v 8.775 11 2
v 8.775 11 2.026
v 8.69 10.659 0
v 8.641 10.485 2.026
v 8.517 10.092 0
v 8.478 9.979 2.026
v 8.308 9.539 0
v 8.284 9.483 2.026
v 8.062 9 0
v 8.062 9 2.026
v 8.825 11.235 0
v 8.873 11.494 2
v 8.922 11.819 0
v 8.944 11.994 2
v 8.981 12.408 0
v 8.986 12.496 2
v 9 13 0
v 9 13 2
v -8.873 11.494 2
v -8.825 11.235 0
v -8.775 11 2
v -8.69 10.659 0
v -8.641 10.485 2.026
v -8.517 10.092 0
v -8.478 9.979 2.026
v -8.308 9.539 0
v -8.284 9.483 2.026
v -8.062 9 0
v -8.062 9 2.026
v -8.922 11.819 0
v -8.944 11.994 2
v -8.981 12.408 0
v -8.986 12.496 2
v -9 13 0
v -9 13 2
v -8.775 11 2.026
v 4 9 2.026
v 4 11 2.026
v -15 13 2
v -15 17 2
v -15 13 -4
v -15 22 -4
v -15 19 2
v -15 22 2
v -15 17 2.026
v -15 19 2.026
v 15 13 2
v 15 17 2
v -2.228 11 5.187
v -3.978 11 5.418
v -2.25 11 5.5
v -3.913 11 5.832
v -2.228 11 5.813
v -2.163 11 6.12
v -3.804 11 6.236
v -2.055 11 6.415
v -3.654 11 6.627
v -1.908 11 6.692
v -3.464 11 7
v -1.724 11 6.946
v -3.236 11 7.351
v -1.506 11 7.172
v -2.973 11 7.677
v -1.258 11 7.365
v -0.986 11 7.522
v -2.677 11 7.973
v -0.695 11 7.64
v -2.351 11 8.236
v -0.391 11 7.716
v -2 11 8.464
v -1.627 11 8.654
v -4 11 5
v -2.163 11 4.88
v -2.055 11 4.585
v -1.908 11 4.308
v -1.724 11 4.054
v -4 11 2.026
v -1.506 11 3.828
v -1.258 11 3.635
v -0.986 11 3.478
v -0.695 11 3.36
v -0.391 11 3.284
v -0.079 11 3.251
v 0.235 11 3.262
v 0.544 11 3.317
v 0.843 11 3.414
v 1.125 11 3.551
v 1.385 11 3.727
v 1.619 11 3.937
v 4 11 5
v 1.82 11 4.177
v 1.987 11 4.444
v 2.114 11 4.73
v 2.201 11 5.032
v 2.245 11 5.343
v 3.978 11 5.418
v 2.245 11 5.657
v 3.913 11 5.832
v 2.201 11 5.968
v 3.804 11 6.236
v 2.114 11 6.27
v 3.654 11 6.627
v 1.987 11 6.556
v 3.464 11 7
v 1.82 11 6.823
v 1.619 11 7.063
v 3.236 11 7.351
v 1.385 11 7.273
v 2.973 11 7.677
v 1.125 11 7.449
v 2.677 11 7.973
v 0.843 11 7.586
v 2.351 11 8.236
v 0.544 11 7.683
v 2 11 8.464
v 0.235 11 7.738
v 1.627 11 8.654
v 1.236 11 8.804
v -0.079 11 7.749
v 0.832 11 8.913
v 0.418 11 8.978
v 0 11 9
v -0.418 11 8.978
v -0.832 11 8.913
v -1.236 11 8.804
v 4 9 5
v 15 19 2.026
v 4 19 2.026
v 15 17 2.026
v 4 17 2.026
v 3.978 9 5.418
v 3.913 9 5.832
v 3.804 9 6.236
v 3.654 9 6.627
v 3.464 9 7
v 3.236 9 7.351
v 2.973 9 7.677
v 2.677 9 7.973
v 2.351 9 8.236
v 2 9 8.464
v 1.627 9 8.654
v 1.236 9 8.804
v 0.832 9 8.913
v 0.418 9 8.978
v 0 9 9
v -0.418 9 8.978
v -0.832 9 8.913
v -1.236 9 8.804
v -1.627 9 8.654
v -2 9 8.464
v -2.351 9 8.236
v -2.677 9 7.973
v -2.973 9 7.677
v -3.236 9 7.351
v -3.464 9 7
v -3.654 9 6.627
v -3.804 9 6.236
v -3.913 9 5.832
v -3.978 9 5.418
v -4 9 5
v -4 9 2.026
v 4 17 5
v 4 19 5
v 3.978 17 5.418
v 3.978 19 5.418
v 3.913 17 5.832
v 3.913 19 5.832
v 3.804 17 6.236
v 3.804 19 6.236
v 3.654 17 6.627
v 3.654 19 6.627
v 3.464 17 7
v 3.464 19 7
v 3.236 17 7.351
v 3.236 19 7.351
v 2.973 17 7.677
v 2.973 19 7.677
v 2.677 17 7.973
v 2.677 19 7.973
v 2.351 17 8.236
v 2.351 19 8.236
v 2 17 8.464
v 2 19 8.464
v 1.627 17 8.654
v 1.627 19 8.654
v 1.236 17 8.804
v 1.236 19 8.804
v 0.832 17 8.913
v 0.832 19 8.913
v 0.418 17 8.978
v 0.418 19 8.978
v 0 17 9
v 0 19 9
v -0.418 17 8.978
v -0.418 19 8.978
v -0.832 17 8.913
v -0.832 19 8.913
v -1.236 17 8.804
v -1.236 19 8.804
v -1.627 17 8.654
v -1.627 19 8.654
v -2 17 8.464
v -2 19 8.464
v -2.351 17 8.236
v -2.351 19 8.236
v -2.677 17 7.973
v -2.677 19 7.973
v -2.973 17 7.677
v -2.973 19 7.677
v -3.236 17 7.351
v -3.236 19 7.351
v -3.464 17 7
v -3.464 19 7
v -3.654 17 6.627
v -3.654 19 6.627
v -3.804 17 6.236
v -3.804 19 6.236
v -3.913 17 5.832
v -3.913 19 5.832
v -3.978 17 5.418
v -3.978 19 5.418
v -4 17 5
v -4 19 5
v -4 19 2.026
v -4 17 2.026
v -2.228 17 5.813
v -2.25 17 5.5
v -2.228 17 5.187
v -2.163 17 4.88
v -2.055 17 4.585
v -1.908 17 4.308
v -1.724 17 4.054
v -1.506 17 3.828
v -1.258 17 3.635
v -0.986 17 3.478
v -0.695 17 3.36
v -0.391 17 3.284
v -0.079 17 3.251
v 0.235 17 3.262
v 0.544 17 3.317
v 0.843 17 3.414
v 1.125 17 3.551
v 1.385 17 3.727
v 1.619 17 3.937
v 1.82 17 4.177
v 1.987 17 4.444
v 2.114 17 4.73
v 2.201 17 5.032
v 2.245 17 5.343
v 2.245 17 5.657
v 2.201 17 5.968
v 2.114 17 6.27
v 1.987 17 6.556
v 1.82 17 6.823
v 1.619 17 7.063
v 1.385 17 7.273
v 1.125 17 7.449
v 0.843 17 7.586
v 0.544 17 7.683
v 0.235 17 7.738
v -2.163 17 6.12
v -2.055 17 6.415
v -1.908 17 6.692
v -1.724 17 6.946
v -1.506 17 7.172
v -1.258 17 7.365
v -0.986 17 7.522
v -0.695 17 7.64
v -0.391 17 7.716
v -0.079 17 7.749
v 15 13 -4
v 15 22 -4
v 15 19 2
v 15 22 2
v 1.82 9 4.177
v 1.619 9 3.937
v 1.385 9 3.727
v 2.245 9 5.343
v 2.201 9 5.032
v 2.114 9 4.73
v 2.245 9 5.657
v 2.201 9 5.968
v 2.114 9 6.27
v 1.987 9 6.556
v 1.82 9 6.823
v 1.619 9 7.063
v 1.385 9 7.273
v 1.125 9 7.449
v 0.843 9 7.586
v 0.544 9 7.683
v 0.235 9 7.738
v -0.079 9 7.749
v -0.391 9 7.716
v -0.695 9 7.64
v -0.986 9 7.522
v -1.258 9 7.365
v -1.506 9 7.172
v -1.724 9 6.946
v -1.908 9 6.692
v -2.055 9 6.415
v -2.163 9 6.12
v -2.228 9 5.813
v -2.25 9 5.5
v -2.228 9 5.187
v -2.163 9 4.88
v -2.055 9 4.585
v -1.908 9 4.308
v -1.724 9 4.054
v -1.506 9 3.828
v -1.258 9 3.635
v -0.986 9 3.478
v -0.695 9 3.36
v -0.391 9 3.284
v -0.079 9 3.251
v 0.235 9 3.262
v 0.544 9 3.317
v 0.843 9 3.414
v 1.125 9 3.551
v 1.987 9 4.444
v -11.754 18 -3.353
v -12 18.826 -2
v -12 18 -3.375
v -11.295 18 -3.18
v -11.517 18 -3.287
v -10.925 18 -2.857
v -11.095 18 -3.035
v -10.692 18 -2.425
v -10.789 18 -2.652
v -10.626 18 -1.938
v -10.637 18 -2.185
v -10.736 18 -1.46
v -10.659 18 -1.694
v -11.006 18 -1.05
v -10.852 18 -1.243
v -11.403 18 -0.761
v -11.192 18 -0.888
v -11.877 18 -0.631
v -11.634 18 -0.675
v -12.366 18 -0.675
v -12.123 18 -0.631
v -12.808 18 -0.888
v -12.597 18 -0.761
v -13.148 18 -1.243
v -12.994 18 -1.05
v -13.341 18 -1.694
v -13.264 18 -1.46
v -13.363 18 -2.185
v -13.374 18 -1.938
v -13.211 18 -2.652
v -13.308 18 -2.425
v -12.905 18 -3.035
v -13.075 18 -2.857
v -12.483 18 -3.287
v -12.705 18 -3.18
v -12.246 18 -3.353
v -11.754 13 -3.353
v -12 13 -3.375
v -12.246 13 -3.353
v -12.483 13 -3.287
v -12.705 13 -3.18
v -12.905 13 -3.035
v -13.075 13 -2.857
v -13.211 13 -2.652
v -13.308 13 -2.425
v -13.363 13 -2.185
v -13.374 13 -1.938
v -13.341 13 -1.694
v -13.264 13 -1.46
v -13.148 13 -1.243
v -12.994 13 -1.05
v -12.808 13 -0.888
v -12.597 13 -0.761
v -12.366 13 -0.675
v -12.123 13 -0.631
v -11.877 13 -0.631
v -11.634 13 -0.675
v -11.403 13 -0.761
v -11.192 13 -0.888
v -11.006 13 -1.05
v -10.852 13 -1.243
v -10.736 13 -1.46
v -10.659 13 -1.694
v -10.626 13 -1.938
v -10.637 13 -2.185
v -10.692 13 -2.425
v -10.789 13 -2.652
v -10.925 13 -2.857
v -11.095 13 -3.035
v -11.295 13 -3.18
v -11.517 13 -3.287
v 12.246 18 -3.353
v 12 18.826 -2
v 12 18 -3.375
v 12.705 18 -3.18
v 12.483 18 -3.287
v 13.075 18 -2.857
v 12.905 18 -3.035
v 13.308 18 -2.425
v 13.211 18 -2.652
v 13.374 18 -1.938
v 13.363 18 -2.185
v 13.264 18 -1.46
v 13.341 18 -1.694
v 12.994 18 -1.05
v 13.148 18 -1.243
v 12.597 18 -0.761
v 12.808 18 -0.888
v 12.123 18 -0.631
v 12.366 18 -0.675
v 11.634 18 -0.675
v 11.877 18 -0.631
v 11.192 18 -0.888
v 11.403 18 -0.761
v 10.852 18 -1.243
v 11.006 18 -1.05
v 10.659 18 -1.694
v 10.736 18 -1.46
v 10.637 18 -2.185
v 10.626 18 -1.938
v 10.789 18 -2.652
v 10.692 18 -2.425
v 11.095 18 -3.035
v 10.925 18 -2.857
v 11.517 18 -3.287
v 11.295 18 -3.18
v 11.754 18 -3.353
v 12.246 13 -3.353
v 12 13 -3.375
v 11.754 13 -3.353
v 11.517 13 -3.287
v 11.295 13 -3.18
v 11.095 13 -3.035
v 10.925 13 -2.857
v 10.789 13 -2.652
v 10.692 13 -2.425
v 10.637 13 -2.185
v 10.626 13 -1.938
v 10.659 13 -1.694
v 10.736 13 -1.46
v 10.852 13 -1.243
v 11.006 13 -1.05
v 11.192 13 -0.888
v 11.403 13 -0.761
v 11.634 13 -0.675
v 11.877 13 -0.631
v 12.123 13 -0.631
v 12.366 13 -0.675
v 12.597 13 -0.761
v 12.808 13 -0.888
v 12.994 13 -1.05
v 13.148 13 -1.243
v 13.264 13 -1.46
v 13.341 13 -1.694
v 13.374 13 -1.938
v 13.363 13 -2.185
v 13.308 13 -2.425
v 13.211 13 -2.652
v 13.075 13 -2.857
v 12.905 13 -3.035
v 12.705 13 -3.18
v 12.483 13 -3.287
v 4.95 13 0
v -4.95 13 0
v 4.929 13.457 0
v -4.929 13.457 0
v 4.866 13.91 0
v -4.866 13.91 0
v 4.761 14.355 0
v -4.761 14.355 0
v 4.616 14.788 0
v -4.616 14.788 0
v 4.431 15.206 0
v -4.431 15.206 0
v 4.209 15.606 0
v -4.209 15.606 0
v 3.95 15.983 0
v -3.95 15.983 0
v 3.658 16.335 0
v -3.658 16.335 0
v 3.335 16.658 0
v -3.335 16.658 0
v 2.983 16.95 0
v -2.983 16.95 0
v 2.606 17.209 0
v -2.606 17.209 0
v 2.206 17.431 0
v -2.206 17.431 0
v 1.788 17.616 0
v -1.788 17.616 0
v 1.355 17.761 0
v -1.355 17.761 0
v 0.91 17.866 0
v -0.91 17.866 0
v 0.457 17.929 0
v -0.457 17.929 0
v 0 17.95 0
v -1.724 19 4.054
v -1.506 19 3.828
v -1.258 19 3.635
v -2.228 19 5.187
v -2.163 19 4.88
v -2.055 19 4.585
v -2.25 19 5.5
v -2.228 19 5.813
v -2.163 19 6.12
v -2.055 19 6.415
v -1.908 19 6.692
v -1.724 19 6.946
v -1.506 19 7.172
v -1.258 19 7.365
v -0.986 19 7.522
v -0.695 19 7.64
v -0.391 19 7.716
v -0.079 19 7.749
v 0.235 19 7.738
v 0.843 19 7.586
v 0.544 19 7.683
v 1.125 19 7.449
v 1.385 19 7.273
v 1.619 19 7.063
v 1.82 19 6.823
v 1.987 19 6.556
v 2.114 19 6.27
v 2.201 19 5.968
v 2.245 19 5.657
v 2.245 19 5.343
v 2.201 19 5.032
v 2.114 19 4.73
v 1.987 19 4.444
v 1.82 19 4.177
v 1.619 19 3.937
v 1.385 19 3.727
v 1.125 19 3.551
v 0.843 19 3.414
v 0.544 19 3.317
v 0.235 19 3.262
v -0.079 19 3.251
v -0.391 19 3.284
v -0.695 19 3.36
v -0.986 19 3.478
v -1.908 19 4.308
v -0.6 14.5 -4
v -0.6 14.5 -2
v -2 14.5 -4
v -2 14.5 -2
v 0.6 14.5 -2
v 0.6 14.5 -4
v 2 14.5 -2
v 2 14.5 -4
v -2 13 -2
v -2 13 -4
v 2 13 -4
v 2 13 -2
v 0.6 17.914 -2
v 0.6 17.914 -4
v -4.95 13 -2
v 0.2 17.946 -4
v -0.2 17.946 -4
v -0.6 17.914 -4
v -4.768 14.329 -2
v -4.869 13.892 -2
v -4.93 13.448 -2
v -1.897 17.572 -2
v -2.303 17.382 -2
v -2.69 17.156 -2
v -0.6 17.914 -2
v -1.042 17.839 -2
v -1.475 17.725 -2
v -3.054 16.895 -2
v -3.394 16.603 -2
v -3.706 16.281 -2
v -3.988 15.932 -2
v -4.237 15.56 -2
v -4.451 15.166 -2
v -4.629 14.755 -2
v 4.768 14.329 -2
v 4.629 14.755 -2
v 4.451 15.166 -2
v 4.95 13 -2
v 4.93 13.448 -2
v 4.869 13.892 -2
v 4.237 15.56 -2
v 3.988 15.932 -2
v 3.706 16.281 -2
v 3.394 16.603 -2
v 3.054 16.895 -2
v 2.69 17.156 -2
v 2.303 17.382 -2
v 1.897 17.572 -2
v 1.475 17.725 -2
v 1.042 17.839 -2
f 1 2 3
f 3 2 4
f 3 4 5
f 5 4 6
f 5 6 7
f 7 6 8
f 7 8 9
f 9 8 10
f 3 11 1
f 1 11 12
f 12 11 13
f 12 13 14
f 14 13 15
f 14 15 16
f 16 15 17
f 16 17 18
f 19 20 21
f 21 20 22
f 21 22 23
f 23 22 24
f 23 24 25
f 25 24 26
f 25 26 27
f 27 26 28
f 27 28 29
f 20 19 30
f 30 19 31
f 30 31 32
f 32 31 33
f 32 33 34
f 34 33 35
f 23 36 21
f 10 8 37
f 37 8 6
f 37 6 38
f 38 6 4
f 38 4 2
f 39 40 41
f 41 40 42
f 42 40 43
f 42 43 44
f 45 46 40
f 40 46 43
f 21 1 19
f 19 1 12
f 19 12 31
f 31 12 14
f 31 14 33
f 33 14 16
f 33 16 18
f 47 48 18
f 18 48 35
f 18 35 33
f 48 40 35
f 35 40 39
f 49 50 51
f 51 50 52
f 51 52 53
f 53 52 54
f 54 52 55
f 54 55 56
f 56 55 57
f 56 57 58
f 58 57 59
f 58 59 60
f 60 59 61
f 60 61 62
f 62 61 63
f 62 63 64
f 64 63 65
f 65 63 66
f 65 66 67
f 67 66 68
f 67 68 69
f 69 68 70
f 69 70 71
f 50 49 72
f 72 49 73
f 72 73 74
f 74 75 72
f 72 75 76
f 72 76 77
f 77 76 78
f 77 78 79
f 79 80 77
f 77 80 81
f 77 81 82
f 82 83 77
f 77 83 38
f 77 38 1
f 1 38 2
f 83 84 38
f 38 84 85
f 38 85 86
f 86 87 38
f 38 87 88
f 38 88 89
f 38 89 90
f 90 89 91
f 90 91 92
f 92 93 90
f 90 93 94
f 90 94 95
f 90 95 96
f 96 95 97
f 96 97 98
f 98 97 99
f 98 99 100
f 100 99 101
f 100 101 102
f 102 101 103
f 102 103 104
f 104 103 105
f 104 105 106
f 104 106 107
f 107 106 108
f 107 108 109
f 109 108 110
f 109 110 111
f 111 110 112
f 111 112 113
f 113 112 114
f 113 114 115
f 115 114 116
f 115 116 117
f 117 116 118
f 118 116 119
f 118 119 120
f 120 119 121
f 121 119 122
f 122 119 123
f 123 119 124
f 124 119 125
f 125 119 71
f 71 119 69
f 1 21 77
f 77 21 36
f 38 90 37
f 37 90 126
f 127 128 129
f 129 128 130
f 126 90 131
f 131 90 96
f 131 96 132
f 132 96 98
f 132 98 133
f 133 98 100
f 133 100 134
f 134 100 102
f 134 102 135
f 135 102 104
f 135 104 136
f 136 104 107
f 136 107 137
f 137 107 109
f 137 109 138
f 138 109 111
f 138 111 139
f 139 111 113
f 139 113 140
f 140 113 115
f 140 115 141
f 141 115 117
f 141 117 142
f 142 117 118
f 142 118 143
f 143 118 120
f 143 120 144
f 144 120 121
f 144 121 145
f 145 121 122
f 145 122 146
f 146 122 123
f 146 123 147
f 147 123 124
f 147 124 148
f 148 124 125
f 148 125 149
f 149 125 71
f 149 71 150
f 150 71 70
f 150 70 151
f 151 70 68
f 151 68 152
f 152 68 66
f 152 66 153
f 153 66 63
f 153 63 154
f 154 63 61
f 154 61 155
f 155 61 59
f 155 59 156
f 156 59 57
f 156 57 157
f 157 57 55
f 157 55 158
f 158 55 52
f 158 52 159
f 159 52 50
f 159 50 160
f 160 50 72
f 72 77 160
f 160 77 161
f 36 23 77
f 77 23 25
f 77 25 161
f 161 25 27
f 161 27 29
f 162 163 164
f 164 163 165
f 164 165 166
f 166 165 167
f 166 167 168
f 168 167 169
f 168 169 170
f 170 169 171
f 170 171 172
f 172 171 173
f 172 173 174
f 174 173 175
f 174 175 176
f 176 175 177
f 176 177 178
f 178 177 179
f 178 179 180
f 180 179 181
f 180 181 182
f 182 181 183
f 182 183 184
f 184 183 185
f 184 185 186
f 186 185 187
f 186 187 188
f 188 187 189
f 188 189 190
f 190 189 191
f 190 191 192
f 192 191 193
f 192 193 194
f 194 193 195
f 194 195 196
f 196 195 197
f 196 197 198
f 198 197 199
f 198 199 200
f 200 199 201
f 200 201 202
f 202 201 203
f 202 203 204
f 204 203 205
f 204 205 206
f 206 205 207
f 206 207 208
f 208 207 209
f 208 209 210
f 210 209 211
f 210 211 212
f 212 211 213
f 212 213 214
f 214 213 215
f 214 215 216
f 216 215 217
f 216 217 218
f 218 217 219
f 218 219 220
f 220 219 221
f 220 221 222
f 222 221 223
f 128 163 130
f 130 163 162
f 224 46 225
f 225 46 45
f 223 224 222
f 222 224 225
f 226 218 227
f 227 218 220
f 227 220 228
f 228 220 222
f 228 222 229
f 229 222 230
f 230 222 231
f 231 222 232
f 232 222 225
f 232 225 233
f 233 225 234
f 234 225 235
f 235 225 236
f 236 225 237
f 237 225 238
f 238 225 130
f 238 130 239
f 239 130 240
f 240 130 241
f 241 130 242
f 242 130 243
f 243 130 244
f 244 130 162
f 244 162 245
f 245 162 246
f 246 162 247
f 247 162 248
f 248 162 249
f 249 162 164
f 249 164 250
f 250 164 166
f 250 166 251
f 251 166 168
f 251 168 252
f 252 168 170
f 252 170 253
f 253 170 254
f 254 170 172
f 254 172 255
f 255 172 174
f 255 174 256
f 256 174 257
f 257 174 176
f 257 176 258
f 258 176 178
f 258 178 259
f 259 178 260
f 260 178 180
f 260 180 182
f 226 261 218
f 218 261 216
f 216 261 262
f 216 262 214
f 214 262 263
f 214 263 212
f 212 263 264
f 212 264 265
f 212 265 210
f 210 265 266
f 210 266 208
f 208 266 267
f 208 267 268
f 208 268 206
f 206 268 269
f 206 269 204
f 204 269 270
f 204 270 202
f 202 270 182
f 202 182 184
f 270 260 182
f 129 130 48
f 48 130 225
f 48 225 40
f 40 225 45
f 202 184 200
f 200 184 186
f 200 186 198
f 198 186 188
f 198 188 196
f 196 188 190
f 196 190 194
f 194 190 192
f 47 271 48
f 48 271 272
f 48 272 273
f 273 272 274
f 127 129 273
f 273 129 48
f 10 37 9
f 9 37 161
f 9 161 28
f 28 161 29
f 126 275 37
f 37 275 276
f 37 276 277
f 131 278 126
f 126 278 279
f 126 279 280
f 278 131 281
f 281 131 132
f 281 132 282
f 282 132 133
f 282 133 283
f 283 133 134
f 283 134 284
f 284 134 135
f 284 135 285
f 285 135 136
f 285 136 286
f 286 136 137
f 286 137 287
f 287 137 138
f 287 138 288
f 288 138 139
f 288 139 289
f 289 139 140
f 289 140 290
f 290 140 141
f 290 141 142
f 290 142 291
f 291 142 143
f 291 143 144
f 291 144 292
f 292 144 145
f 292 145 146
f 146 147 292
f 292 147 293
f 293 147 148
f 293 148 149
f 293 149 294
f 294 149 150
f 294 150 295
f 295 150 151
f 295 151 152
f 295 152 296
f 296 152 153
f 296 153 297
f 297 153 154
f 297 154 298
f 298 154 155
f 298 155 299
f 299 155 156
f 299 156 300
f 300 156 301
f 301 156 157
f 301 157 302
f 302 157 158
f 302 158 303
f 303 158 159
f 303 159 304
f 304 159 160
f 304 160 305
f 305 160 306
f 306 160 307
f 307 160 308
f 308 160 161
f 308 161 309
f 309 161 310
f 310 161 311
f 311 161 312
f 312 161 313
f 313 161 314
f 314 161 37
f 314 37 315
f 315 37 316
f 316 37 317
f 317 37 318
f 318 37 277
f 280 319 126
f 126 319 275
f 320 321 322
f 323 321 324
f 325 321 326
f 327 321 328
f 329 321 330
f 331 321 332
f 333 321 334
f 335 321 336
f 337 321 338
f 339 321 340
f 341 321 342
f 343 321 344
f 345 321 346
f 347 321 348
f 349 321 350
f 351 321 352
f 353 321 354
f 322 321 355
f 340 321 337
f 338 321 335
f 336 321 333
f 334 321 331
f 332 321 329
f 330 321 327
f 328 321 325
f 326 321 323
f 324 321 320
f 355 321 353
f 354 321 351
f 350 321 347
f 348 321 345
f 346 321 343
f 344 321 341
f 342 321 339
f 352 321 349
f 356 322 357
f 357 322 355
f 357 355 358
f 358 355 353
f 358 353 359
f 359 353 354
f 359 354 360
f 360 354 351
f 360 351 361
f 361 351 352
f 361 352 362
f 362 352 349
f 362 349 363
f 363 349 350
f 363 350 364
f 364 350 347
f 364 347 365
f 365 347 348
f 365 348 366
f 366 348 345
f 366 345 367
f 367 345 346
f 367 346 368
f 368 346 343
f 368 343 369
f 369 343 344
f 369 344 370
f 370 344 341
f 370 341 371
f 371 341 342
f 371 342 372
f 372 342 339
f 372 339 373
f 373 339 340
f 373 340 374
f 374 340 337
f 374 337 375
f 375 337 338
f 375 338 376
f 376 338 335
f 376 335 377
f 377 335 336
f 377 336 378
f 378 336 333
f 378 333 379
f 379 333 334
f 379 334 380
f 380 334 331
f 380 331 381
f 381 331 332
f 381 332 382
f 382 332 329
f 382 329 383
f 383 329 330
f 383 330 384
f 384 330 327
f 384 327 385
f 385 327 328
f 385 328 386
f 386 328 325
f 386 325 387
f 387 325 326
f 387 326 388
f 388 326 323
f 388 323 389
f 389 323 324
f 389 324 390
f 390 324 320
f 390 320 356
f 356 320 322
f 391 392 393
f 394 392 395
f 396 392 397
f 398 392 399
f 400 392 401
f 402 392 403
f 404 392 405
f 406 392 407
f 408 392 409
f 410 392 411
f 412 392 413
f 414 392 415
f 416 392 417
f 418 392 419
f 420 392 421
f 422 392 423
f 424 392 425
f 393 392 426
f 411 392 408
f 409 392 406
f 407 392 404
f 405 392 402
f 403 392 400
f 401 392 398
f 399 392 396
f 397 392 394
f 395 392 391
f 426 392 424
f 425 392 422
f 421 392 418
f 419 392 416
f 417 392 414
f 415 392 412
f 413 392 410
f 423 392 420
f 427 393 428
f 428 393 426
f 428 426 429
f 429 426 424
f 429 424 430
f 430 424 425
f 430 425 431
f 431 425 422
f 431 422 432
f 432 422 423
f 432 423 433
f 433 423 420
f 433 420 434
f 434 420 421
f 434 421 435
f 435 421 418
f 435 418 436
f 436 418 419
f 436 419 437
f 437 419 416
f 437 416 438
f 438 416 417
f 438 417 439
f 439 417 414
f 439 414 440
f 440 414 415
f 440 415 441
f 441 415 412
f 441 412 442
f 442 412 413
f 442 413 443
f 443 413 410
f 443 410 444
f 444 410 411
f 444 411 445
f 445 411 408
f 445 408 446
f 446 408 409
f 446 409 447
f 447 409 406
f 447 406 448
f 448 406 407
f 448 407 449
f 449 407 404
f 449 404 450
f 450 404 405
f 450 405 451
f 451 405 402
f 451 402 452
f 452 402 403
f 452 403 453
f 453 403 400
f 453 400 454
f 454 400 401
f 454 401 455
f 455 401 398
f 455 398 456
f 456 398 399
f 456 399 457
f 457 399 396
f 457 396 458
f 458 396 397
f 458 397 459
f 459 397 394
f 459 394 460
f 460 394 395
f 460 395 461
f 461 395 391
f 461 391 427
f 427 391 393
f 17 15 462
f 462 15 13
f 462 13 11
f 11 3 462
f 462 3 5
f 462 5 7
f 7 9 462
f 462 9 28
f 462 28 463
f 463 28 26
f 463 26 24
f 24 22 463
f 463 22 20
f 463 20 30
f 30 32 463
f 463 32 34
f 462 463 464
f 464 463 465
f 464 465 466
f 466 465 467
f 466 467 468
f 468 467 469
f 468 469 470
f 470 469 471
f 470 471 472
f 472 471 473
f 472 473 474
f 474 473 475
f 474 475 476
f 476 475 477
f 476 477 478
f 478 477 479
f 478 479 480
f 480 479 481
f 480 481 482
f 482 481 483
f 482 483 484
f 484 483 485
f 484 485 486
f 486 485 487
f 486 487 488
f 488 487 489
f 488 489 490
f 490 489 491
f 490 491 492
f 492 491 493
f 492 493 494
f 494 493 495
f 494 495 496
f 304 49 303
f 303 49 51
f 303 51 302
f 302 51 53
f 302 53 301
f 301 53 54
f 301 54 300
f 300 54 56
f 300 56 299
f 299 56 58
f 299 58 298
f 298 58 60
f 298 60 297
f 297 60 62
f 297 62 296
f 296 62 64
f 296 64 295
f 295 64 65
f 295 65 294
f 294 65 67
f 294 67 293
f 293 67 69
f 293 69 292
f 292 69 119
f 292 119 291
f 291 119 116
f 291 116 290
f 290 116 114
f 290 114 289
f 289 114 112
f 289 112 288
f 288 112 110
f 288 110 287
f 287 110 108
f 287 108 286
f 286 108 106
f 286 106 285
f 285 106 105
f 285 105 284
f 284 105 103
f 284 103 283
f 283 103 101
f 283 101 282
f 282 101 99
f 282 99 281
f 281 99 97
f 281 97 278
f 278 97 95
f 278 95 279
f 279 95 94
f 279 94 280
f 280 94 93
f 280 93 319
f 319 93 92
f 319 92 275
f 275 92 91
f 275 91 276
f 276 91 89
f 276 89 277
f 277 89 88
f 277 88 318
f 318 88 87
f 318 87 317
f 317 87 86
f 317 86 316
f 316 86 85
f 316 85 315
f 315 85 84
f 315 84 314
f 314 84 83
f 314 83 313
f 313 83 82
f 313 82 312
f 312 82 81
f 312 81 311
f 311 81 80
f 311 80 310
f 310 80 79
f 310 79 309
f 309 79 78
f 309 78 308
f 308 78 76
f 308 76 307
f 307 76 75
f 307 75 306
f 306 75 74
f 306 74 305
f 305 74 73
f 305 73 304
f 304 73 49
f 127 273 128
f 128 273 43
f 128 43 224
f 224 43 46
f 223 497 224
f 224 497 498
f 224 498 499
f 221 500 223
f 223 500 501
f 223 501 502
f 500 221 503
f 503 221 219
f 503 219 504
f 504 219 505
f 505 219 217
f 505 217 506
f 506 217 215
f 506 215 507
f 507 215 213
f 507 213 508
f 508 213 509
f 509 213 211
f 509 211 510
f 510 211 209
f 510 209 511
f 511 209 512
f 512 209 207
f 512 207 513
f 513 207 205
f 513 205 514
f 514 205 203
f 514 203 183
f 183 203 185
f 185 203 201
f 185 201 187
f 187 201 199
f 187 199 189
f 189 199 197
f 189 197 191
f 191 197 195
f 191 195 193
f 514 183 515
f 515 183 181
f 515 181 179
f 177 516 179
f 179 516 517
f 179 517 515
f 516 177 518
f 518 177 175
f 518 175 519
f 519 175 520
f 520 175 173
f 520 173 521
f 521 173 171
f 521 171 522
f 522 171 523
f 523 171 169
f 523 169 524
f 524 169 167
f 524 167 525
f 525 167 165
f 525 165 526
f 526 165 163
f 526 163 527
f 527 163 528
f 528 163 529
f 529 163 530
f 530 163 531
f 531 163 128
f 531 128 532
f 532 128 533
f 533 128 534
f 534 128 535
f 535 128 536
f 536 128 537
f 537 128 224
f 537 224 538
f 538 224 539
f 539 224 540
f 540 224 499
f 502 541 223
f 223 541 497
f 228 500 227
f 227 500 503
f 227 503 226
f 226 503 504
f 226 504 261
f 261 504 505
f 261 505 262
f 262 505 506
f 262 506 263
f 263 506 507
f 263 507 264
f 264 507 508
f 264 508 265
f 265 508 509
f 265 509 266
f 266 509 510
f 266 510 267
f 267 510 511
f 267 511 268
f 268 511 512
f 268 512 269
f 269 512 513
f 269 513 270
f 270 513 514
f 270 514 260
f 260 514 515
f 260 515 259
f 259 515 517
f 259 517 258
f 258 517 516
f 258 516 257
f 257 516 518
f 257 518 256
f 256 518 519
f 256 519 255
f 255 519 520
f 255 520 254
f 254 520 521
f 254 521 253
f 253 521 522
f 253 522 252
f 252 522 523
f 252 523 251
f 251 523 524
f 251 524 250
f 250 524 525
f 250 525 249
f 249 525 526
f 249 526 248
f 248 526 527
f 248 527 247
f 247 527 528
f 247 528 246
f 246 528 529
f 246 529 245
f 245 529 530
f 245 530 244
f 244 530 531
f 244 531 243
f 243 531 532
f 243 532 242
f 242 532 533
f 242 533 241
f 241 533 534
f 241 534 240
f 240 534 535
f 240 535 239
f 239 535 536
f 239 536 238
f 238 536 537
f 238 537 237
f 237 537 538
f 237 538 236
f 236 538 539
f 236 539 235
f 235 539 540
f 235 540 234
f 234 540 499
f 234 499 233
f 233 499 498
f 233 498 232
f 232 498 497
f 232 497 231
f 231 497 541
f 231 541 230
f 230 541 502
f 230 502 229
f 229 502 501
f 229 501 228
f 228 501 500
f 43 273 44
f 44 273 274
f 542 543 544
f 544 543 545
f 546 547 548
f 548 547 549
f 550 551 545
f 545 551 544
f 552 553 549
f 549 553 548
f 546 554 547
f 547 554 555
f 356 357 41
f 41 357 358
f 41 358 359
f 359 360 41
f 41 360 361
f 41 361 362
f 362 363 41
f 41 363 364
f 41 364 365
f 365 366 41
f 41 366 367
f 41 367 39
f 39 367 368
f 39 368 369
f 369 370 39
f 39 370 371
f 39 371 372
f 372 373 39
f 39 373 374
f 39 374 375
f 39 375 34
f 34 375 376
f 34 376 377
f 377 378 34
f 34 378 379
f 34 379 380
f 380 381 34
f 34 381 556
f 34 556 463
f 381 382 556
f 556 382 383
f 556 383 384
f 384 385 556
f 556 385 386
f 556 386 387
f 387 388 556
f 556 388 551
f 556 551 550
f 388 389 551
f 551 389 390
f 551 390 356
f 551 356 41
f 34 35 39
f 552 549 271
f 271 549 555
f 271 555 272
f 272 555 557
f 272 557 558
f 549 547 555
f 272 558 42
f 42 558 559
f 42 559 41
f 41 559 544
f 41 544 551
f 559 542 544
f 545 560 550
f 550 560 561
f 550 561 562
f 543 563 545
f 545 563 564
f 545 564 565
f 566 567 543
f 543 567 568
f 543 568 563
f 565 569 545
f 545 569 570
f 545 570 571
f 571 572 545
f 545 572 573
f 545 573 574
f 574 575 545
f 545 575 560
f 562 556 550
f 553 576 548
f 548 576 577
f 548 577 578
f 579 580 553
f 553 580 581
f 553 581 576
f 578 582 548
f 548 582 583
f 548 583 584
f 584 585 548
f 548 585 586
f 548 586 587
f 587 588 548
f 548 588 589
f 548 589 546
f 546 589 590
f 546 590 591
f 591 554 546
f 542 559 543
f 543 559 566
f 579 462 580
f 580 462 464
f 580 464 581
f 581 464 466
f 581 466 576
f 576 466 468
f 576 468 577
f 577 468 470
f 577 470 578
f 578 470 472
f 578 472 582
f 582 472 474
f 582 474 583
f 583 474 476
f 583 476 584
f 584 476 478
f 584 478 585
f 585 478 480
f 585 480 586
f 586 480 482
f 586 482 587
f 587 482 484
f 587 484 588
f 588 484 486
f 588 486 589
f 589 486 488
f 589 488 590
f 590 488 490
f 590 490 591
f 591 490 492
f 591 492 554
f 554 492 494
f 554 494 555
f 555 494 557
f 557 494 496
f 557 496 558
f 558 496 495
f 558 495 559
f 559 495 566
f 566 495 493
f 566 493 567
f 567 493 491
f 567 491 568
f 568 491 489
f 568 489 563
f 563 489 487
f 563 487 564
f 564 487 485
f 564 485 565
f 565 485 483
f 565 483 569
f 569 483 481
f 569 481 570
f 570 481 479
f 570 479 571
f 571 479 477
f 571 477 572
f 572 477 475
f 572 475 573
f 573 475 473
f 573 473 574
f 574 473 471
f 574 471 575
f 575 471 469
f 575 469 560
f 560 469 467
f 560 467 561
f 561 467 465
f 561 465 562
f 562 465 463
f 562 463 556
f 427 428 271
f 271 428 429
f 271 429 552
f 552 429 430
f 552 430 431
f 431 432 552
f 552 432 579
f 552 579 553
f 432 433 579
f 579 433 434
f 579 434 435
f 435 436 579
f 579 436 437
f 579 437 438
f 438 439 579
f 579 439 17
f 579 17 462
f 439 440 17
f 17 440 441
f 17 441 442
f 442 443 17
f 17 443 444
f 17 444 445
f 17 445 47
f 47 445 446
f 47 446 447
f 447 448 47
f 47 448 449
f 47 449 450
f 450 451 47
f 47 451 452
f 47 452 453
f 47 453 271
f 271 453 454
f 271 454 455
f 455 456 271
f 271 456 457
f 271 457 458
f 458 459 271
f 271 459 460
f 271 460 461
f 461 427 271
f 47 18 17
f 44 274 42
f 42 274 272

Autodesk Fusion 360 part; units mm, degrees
sketch "スケッチ1" plane through (0, 0, 0) normal (0, 0, 1) x (1, 0, 0)
  line L0 (-16.5, 22) -> (16.5, 22)
  line L1 (16.5, 22) -> (16.5, 0)
  line L2 (16.5, 0) -> (-16.5, 0)
  line L3 (-16.5, 0) -> (-16.5, 22)
  dimension "d7" = 22
  dimension "d8" = 33
extrude "押し出し1" add sketch "スケッチ1" along normal blind 2
sketch "スケッチ3" plane through (0, 0, 0) normal (0, 0, -1) x (1, 0, 0)
  line L0 (16.5, 0) -> (-16.5, 0)
  line L1 (-16.5, 0) -> (-16.5, -22)
  line L2 (-16.5, -22) -> (16.5, -22)
  line L3 (16.5, -22) -> (16.5, 0)
  arc A0 (-4.95, -13) -> (4.95, -13) centre (0, -13) ccw
  line L4 (16.5, -13) -> (-16.5, -13)
  dimension "d9" = 9.9
  dimension "d10" = 9
extrude "押し出し2" add sketch "スケッチ3" along normal blind 2 contours L1 L2 L3 A0 L4
sketch "スケッチ4" plane through (0, 0, -2) normal (0, 0, -1) x (1, 0, 0)
  line L0 (-4.95, -13) -> (-16.5, -13)
  line L1 (-16.5, -13) -> (-16.5, -22)
  line L2 (-16.5, -22) -> (16.5, -22)
  line L3 (16.5, -22) -> (16.5, -13)
  line L4 (16.5, -13) -> (4.95, -13)
  arc A0 (-4.95, -13) -> (4.95, -13) centre (0, -13) ccw
  line L5 (16.5, -22) -> (0.6, -22)
  line L6 (0.6, -22) -> (0.6, -13)
  line L7 (0.6, -13) -> (16.5, -13)
  line L8 (16.5, -13) -> (16.5, -22)
  line L9 (-16.5, -22) -> (-0.6, -22)
  line L10 (-0.6, -22) -> (-0.6, -13)
  line L11 (-0.6, -13) -> (-16.5, -13)
  line L12 (-16.5, -13) -> (-16.5, -22)
  dimension "d13" = 1.2
extrude "押し出し3" add sketch "スケッチ4" along normal blind 2
sketch "スケッチ5" plane through (0, 0, 0) normal (0, 0, -1) x (1, 0, 0)
  line L0 (4.95, -13) -> (16.5, -13)
  line L1 (16.5, -13) -> (16.5, 0)
  line L2 (16.5, 0) -> (-16.5, 0)
  line L3 (-16.5, 0) -> (-16.5, -13)
  line L4 (-16.5, -13) -> (-4.95, -13)
  arc A0 (-4.95, -13) -> (4.95, -13) centre (0, -13) ccw
  line L5 (-3.75, 0) -> (3.75, 0)
  line L6 (3.75, 0) -> (3.75, -18)
  line L7 (3.75, -18) -> (-3.75, -18)
  line L8 (-3.75, -18) -> (-3.75, 0)
  line L9 (0, -1.75) -> (0, -22.5)
  line L10 (3.75, -7) -> (16.5, -7)
  line L11 (-3.75, -7) -> (-16.5, -7)
  dimension "d17" = 7.5
  dimension "d18" = 11
  dimension "d19" = 11
sketch "スケッチ9" plane through (0, 13, 0) normal (0, -1, 0) x (1, 0, 0)
  line L0 (-4.95, 0) -> (-16.5, 0)
  line L1 (-16.5, 0) -> (-16.5, -4)
  line L2 (-16.5, -4) -> (-0.6, -4)
  line L3 (-0.6, -4) -> (-0.6, -2)
  line L4 (-0.6, -2) -> (-4.95, -2)
  line L5 (-4.95, -2) -> (-4.95, 0)
  line L6 (-2, -2) -> (2, -2)
  line L7 (2, -2) -> (2, -4)
  line L8 (2, -4) -> (-2, -4)
  line L9 (-2, -4) -> (-2, -2)
  line L10 (16.5, -4) -> (0.6, -4)
  dimension "d37" = 4
  dimension "d38" = 2
extrude "押し出し7" cut sketch "スケッチ9" against normal blind 1.5 contours L2 L3 L4 L6 L8 L9 | L3 L6 L7 L8 L10
sketch "スケッチ11" plane through (0, 22, 0) normal (0, 1, 0) x (-1, 0, 0)
  line L0 (16.5, -4) -> (16.5, 2)
  line L1 (16.5, 2) -> (-16.5, 2)
  line L2 (-16.5, 2) -> (-16.5, -4)
  line L3 (-16.5, -4) -> (16.5, -4)
  line L4 (16.5, 2) -> (-13.5, 2)
  line L5 (-13.5, 2) -> (-13.5, 12)
  line L6 (-13.5, 12) -> (16.5, 12)
  line L7 (16.5, 12) -> (16.5, 2)
  dimension "d49" = 10
ref_plane "作業平面1" through (0, 11, -1) normal (0, 1, 0) x (-1, 0, 0)
sketch "スケッチ13" plane through (0, 11, -1) normal (0, 1, 0) x (1, 0, 0)
  line L0 (16.5, -10) -> (-16.5, -10)
  line L1 (-16.5, -10) -> (-16.5, -3)
  line L2 (-16.5, -3) -> (16.5, -3)
  line L3 (16.5, -3) -> (16.5, -10)
  line L4 (16.5, 3) -> (16.5, -3)
  line L5 (-16.5, 3) -> (-16.5, -3)
  circle A0 centre (0, -6.5) radius 2.25
  dimension "d53" = 7
  dimension "d54" = 4.5
  dimension "d58" = 3.5
extrude "押し出し11" add sketch "スケッチ13" along normal blind -2 and the other way blind -8
sketch "Sketch17" plane through (16.5, 0, 0) normal (1, 0, 0) x (0, 1, 0)
  line L0 (22, -4) -> (22, 2)
  line L1 (22, 2) -> (19, 2)
  line L2 (19, 2) -> (19, 9)
  line L3 (19, 9) -> (9, 9)
  line L4 (9, 9) -> (9, 2)
  line L5 (9, 2) -> (0, 2)
  line L6 (0, 2) -> (0, 0)
  line L7 (0, 0) -> (13, 0)
  line L8 (13, 0) -> (13, -4)
  line L9 (13, -4) -> (22, -4)
  line L10 (11, 9) -> (17, 9)
  line L11 (17, 9) -> (17, 2)
  line L12 (17, 2) -> (11, 2)
  line L13 (11, 2) -> (11, 9)
extrude "Extrude15" cut sketch "Sketch17" against normal blind 400 contours L3 L10 L11 L12 L13
sketch "Sketch18" plane through (-16.5, 0, 0) normal (-1, 0, 0) x (0, -1, 0)
  line L0 (-11, 9) -> (-11, 2)
  line L1 (-11, 2) -> (-17, 2)
  line L2 (-17, 2) -> (-17, 9)
  line L3 (-17, 9) -> (-19, 9)
  line L4 (-19, 9) -> (-19, 2)
  line L5 (-19, 2) -> (-22, 2)
  line L6 (-22, 2) -> (-22, -4)
  line L7 (-22, -4) -> (-13, -4)
  line L8 (-13, -4) -> (-13, 0)
  line L9 (-13, 0) -> (0, 0)
  line L10 (0, 0) -> (0, 2)
  line L11 (0, 2) -> (-9, 2)
  line L12 (-9, 2) -> (-9, 9)
  line L13 (-9, 9) -> (-11, 9)
  line L14 (-9, 2) -> (0, 2)
  line L15 (0, 2) -> (0, 0)
  line L16 (0, 0) -> (-9, 0)
  line L17 (-9, 0) -> (-9, 2)
extrude "Extrude16" cut sketch "Sketch18" against normal blind 34 contours L9 L10 L11 L14 L15 L16 L17
sketch "Sketch19" plane through (0, 13, 0) normal (0, -1, 0) x (1, 0, 0)
  line L0 (2, -2) -> (2, -4)
  line L1 (2, -4) -> (16.5, -4)
  line L2 (16.5, -4) -> (16.5, 0)
  line L3 (16.5, 0) -> (4.95, 0)
  line L4 (4.95, 0) -> (4.95, -2)
  line L5 (4.95, -2) -> (2, -2)
  line L6 (0.6, -2) -> (16.5, -2)
  line L7 (-0.6, -2) -> (-16.5, -2)
  point P0 (12, -2)
  point P1 (-12, -2)
hole "Hole1" at (-12, 13, -2) at (12, 13, -2) direction (0, 1, 0) diameter 2.75 depth 5 tip angle 118
sketch "Sketch20" plane through (0, 9, 0) normal (0, -1, 0) x (1, 0, 0)
  circle A0 centre (0, 5.5) radius 2.25
  line L0 (16.5, 0) -> (16.5, 9)
  line L1 (16.5, 9) -> (-16.5, 9)
  line L2 (-16.5, 9) -> (-16.5, 0)
  line L3 (-16.5, 0) -> (16.5, 0)
  circle A1 centre (0, 5) radius 4
  curve L4
  curve L5
  curve L6
  curve L7
  line L8 (-16.5, 2.0263) -> (16.5, 2.0263)
  line L9 (16.5, 2.0263) -> (16.5, 0)
  line L10 (16.5, 0) -> (-16.5, 0)
  line L11 (-16.5, 0) -> (-16.5, 2.0263)
  line L12 (-4, 5) -> (-4, 2.0263)
  line L13 (4, 5) -> (4, 2.0263)
  point P0 (-16.5, 2)
extrude "Extrude17" cut sketch "Sketch20" against normal blind 150 contours L0 L1 A1 L8 L13 | L1 L2 A1 L8 L12
sketch "Sketch21" plane through (0, 0, -4) normal (0, 0, -1) x (1, 0, 0)
  line L0 (2, -13) -> (2, -14.5)
  line L1 (2, -14.5) -> (0.6, -14.5)
  line L2 (0.6, -14.5) -> (0.6, -17.9135)
  arc A0 (-0.6, -17.9135) -> (0.6, -17.9135) centre (0, -13) ccw
  line L3 (-0.6, -17.9135) -> (-0.6, -14.5)
  line L4 (-0.6, -14.5) -> (-2, -14.5)
  line L5 (-2, -14.5) -> (-2, -13)
  line L6 (-2, -13) -> (-16.5, -13)
  line L7 (-16.5, -13) -> (-16.5, -22)
  line L8 (-16.5, -22) -> (16.5, -22)
  line L9 (16.5, -22) -> (16.5, -13)
  line L10 (16.5, -13) -> (2, -13)
sketch "Sketch22" plane through (0, 0, 0) normal (0, 0, -1) x (1, 0, 0)
  line L0 (16.5, -9) -> (-16.5, -9)
  line L1 (-16.5, -9) -> (-16.5, -13)
  line L2 (-16.5, -13) -> (-4.95, -13)
  arc A0 (-4.95, -13) -> (4.95, -13) centre (0, -13) ccw
  line L3 (4.95, -13) -> (16.5, -13)
  line L4 (16.5, -13) -> (16.5, -9)
  circle A1 centre (0, -13) radius 9
extrude "Extrude18" cut sketch "Sketch22" against normal blind 10 contours L0 L3 L4 A1 | L0 L1 L2 A1
move_face "OffsetFaces1" offset -1 1 faces at (16.5, 17.3333, -2)
move_face "OffsetFaces2" offset -0.5 1 faces at (15.5, 17.3333, -2)
move_face "OffsetFaces3" offset -1.5 1 faces at (-16.5, 17.3333, -2)
move_face "OffsetFaces4" offset 1 1 faces at (5, 22, 0)
move_face "OffsetFaces5" offset -1 1 faces at (5, 23, 0)
